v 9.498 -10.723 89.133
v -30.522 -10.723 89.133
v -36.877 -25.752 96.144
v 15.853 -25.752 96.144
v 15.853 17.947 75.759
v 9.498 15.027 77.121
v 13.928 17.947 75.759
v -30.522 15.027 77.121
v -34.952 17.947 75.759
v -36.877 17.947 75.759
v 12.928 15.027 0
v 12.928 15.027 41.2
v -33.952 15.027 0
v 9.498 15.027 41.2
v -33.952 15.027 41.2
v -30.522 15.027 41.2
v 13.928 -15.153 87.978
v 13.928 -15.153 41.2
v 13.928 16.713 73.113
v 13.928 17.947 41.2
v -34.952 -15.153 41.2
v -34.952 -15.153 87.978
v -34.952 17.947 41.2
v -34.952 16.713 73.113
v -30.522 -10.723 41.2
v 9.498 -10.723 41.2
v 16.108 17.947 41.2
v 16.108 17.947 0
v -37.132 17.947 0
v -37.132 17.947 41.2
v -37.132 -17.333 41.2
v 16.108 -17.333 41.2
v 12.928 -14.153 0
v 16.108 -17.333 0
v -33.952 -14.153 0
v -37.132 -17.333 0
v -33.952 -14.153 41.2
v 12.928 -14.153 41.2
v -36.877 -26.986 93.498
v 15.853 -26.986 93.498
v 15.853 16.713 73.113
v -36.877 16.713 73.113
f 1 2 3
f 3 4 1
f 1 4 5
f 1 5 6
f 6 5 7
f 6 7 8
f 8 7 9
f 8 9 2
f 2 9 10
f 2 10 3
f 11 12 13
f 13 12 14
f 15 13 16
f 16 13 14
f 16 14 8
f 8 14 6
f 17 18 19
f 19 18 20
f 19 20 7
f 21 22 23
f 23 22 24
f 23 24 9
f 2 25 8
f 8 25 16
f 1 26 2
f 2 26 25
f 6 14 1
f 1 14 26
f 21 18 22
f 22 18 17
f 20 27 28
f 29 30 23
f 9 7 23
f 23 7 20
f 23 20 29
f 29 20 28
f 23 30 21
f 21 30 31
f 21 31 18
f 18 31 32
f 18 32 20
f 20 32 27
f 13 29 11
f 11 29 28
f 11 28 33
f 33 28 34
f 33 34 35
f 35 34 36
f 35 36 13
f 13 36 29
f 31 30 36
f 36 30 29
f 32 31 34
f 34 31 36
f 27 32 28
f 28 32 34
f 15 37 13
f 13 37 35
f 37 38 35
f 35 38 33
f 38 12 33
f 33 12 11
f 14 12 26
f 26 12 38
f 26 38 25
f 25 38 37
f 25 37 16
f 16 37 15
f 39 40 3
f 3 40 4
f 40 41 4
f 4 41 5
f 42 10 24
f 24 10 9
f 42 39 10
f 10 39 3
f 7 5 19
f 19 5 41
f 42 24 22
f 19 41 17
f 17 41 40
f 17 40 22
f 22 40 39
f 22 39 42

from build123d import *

# Parameters (mm, degrees)
CROQUIS1_W               = 53.24
CROQUIS1_H               = 35.28
CROQUIS1_W_2             = 46.88
CROQUIS1_H_2             = 29.18
SALIENTE_EXTRUIR2_DEPTH  = 41.2
CROQUIS3_W               = 48.88
CROQUIS3_H               = 33.1
CROQUIS3_W_2             = 40.02
CROQUIS3_H_2             = 25.75
SALIENTE_EXTRUIR11_DEPTH = 50
CROQUIS21_W              = 51.220456713
CROQUIS21_H              = 38.403596391
CORTAR_EXTRUIR1_DEPTH    = 24
CROQUIS22_W              = 52.73
CROQUIS22_H              = 48.22
SALIENTE_EXTRUIR15_DEPTH = 2.92
CROQUIS24_W              = 40.02
CROQUIS24_H              = 25.75
CORTAR_EXTRUIR2_DEPTH    = 81.92


with BuildPart() as part:
    # Croquis1 → Saliente-Extruir2 (new body)
    with BuildSketch(Plane.XY):
        with Locations((-10.511813518, 0.307314635)):
            Rectangle(CROQUIS1_W, CROQUIS1_H)
        with Locations((-10.511813518, 0.437314635)):
            Rectangle(CROQUIS1_W_2, CROQUIS1_H_2, mode=Mode.SUBTRACT)
    extrude(amount=SALIENTE_EXTRUIR2_DEPTH)

    # Croquis3 → Saliente-Extruir11 (add)
    with BuildSketch(Plane.XY.offset(41.2)):
        with Locations((-10.511813518, 1.397314635)):
            Rectangle(CROQUIS3_W, CROQUIS3_H)
        with Locations((-10.511813518, 2.152314635)):
            Rectangle(CROQUIS3_W_2, CROQUIS3_H_2, mode=Mode.SUBTRACT)
    extrude(amount=SALIENTE_EXTRUIR11_DEPTH)

    # Croquis21 → Cortar-Extruir1 (cut)
    with BuildSketch(Plane(origin=(0, 32.232144696, 69.095644301), x_dir=(-1, 0, 0), z_dir=(0, -0.4227509471843472, -0.906245902972663))):
        with Locations((10.82223744, -34.046833933)):
            Rectangle(CROQUIS21_W, CROQUIS21_H)
    extrude(amount=-CORTAR_EXTRUIR1_DEPTH, mode=Mode.SUBTRACT)

    # Croquis22 → Saliente-Extruir15 (add)
    with BuildSketch(Plane(origin=(0, 32.232144696, 69.095644301), x_dir=(-1, 0, 0), z_dir=(0, -0.4227509471843472, -0.906245902972663))):
        with Locations((10.511813518, -39.872642362)):
            Rectangle(CROQUIS22_W, CROQUIS22_H)
    extrude(amount=SALIENTE_EXTRUIR15_DEPTH)

    # Croquis24 → Cortar-Extruir2 (cut)
    with BuildSketch(Plane.XY.offset(41.2)):
        with Locations((-10.511813518, 2.152314635)):
            Rectangle(CROQUIS24_W, CROQUIS24_H)
    extrude(amount=CORTAR_EXTRUIR2_DEPTH, mode=Mode.SUBTRACT)


solid = part.part
